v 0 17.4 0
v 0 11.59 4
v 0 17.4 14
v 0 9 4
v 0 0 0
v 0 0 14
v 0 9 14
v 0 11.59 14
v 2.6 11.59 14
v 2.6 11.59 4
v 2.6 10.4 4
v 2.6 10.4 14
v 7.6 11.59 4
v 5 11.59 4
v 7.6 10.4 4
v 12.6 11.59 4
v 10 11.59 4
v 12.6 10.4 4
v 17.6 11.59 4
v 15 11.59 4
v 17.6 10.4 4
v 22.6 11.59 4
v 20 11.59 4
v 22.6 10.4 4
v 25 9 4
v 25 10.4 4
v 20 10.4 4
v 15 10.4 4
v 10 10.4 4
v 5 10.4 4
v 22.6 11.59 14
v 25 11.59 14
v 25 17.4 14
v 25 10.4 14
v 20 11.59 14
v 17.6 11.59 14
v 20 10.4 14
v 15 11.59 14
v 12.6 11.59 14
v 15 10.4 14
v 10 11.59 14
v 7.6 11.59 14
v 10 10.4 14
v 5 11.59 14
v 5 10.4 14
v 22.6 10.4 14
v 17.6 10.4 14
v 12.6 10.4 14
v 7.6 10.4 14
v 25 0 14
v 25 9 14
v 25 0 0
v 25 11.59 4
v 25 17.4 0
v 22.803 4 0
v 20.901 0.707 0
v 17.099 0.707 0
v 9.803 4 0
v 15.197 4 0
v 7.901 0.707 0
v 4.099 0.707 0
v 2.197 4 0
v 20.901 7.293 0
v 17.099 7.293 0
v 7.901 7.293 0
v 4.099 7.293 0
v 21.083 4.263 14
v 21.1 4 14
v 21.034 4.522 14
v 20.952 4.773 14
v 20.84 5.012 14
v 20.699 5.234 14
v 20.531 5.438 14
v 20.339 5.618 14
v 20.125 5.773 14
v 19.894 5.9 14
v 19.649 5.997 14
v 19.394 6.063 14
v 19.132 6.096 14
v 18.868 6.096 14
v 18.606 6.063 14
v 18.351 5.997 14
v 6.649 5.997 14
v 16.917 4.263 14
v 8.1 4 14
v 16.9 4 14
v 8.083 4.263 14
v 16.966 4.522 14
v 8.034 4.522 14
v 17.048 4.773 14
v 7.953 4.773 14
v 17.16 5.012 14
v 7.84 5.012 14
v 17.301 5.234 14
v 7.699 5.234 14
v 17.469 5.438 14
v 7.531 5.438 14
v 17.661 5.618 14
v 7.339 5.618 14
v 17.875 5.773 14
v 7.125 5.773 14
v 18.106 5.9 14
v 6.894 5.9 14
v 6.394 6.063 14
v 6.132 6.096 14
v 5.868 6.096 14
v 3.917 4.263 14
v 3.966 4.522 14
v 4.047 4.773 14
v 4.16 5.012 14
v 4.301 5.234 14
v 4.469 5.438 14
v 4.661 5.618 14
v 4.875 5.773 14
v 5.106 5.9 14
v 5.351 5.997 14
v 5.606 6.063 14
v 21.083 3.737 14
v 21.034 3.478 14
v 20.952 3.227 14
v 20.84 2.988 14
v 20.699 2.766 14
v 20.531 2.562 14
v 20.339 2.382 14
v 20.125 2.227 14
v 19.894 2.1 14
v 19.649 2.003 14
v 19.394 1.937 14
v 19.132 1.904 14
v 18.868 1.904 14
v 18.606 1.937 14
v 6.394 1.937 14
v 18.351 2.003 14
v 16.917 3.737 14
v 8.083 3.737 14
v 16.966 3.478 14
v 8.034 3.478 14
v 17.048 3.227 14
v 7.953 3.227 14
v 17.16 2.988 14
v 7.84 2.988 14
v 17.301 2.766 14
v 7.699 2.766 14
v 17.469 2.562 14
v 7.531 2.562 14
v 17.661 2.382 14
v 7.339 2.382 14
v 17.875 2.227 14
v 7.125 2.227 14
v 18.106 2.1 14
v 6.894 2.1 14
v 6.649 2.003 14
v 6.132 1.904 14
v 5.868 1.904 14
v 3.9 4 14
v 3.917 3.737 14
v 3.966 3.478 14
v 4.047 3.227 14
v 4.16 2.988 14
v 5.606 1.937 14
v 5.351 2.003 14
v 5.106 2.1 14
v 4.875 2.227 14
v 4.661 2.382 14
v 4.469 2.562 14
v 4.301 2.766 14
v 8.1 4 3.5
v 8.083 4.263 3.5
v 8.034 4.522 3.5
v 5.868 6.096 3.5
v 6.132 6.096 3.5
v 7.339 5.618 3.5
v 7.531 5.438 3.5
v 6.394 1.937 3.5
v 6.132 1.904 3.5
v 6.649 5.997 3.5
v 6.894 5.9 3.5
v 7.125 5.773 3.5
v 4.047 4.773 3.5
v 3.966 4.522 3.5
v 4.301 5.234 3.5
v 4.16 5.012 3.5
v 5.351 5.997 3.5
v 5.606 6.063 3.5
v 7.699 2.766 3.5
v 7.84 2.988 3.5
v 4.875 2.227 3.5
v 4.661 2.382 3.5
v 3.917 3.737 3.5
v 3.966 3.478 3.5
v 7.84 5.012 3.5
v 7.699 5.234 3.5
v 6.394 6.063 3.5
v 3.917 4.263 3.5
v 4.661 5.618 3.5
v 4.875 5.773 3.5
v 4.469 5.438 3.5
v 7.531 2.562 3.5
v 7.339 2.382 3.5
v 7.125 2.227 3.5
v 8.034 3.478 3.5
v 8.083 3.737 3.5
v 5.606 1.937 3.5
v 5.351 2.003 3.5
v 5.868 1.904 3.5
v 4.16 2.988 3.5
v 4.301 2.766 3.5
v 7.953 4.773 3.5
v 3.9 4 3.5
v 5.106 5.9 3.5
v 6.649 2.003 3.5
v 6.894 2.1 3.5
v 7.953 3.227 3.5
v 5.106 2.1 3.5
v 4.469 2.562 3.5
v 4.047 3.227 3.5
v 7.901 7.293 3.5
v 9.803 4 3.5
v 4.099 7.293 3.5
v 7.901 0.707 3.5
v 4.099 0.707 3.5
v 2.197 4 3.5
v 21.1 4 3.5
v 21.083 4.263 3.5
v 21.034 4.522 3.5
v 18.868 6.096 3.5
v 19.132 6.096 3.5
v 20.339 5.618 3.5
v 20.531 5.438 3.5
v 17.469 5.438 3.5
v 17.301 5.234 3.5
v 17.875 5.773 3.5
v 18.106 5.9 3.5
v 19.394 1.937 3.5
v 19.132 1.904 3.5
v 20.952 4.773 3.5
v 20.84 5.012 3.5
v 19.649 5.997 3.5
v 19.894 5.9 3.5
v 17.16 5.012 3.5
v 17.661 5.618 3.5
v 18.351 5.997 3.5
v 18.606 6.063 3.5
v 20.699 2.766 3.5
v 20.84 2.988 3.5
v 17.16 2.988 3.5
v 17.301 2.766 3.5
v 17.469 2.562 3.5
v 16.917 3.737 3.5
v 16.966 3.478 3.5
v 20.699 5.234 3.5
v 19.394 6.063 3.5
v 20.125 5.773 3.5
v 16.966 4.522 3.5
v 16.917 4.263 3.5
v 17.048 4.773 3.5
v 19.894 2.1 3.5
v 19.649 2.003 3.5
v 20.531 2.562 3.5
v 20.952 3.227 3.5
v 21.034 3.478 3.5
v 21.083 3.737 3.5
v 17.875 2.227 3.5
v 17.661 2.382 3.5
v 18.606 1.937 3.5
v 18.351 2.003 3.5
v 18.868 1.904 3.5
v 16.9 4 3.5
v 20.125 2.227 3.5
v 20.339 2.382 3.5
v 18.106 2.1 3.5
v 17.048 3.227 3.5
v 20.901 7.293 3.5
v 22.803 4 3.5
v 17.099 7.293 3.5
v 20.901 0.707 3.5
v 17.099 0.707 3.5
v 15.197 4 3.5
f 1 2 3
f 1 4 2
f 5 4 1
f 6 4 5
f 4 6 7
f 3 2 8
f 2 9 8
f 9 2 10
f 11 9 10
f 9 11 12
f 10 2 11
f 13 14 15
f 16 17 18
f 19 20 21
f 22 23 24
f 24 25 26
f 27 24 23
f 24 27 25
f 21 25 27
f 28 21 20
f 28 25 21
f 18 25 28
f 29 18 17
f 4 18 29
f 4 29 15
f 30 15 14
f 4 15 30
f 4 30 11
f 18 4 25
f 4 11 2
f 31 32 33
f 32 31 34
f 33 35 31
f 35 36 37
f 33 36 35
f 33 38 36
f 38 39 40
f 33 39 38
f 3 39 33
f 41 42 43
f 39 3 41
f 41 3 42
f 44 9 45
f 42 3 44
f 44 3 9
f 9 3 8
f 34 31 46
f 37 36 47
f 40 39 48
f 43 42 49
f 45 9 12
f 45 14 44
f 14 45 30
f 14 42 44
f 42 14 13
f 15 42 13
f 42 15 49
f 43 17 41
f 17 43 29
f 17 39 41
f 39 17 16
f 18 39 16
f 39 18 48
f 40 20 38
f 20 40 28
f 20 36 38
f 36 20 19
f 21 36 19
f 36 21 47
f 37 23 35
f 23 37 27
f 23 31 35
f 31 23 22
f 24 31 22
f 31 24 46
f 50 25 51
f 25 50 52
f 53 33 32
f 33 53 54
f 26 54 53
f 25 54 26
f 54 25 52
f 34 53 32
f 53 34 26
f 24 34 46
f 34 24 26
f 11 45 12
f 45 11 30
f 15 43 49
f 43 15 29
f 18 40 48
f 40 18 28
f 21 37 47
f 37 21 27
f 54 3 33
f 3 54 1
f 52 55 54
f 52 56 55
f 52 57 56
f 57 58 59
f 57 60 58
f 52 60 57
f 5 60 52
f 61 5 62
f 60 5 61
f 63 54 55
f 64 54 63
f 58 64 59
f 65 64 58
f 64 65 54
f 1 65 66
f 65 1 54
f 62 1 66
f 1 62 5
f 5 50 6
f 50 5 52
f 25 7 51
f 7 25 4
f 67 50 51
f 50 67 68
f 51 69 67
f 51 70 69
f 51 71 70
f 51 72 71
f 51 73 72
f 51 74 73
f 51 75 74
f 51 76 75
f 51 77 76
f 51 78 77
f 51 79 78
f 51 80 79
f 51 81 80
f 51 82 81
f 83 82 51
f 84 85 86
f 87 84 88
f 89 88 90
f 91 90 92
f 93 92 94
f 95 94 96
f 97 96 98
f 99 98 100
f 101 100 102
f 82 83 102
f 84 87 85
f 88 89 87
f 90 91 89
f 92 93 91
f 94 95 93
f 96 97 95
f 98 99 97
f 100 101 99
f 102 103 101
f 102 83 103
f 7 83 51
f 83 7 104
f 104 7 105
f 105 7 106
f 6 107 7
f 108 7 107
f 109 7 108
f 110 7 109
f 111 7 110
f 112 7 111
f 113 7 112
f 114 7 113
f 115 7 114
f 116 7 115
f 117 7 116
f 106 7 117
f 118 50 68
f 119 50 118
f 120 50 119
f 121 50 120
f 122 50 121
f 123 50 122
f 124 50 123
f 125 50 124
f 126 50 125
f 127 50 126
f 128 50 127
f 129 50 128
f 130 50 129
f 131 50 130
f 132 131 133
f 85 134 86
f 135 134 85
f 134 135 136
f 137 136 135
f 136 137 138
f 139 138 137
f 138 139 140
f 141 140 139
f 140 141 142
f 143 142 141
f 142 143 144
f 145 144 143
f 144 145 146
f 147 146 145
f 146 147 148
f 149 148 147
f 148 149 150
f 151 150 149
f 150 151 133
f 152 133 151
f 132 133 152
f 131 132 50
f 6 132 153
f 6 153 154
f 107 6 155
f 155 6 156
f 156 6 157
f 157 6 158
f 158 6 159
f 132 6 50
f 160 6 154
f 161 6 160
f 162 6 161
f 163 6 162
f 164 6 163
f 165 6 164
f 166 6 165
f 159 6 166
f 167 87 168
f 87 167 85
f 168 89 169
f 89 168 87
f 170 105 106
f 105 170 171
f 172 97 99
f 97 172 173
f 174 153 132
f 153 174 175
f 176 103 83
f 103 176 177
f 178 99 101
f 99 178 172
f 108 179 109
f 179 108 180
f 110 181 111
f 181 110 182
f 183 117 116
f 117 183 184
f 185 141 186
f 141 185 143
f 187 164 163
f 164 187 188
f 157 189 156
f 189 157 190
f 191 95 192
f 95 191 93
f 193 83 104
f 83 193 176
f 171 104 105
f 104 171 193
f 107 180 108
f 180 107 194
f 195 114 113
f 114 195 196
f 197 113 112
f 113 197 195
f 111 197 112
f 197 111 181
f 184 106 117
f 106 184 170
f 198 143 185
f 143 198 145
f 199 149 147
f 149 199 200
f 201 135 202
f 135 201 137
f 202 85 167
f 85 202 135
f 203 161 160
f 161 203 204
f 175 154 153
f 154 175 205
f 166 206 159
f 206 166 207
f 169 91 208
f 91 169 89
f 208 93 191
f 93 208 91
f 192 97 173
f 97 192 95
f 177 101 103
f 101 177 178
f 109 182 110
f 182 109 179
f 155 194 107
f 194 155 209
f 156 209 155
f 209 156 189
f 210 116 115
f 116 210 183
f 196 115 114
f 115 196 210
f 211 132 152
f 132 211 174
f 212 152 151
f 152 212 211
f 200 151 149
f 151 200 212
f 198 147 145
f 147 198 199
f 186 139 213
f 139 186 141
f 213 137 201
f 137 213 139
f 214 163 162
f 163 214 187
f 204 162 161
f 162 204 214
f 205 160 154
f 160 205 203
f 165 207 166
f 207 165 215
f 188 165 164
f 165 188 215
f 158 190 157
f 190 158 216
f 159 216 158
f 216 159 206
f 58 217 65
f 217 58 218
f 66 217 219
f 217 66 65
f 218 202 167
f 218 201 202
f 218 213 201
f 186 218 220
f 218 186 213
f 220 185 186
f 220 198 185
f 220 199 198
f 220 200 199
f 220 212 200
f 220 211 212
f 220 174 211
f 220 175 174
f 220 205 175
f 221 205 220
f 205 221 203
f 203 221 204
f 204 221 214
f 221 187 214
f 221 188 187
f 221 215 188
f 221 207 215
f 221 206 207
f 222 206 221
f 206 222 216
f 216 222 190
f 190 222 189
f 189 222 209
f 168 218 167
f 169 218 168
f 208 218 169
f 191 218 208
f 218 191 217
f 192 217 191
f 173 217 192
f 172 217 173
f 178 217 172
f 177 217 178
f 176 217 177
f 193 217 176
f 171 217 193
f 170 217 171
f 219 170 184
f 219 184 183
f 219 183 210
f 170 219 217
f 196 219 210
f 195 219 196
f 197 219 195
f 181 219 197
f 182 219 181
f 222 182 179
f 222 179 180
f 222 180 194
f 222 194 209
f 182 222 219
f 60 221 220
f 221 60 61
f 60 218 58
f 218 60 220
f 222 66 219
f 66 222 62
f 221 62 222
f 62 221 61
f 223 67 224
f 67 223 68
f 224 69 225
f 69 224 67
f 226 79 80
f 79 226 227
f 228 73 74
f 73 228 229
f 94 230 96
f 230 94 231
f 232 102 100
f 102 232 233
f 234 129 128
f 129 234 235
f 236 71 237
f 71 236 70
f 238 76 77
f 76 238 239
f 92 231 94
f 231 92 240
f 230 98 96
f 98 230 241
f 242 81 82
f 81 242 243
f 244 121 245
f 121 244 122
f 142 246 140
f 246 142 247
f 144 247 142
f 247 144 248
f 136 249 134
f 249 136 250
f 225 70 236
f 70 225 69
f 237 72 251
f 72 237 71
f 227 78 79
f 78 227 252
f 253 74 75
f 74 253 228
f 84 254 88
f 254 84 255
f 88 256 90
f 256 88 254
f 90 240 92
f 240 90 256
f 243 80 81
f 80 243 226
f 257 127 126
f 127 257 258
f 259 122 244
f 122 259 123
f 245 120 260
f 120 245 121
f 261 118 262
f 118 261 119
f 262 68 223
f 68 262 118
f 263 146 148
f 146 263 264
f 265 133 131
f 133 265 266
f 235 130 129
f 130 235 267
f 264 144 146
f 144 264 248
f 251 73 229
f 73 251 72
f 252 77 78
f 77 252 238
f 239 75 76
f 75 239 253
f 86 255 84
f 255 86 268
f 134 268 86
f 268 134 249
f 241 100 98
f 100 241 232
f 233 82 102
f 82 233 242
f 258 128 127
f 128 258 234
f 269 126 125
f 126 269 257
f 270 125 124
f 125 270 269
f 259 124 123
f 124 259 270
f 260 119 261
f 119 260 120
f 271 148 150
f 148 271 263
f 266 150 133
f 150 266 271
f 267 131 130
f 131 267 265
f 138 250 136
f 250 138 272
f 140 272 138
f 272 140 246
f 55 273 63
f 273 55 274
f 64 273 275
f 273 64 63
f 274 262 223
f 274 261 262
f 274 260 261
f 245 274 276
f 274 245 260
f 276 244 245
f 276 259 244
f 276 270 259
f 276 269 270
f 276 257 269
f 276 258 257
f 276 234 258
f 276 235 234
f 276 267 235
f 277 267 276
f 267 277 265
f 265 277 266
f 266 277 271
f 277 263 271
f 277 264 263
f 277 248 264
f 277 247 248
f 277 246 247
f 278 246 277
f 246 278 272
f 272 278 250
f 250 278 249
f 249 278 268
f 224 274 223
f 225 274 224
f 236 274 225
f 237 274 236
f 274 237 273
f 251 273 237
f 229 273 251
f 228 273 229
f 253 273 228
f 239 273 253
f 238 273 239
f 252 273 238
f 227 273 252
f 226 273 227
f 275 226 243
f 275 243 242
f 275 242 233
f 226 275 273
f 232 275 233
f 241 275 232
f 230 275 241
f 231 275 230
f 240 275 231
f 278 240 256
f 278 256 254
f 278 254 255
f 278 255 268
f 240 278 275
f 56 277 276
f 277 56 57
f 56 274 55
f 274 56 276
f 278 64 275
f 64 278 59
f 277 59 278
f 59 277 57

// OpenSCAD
// Y-belt retainer/tensioner
// May 2012 John Newman

// This parameter deterimes how far the belt is held above the deck
dRise = 0;			// Added to the depth to make the belt run horizontal

// Belt dimensions - These are for T2.5, see below for T5
//tBase = 1.25;		// Thickness of belt base
//tFull = 2.0;			// Thickness of Belt at teeth
//wTooth = 1.4;		// Width of tooth (not actual, req)
//wSpace = 1.1;		// Width of space
//wBelt = 6.2;		// Width of belt

// Belt dimensions - These are for T5
tBase = 1.5;		// Thickness of belt base
tFull = 2.7;			// Thickness of Belt at teeth
wTooth = 2.6;		// Width of tooth (not actual, req)
wSpace = 2.4;		// Width of space
wBelt = 10;		// Width of belt


// Misc params
wHex = 6.9;		// Width of trap for hex nut
dHex	= 2.5;			// Depth of trap for hex nut
rM3 = 1.7;			// Radius of M3 bolt hole
sDrop = wHex/2-0.5; //2.8;		// Driver screw drop from base of slider
Adjust = 0.5;		// Spacing for things to fit inside other things!
pWidth = 9;			// Screw platform width
pHeight = 5;		// Screw platform height

// Base parameters
bwExt = 20;		// Widest part of base
bwInt = 15;			// inside width, where slider goes
blExt = 30;			// Overall length of base
blHed = 6;			// Head of base whch takes the strain !
bdExt = 12.5;		// This included a minimum floor thickness of 2mm (?)
bRoof = 2.8;		// The thickness of the roof which holds the slider in
bFloor = 1;			// The thickness of the floor under the slider (minimum)
bdSoc = bdExt-(bRoof+bFloor);		// 'Socket' depth for slider to go in

// Slider parameters
swMax = bwInt - Adjust;	// Wide part of slider
sdMax = bdSoc-Adjust;		// Height of slider

lBelt = blExt*2;		// Length of a bit of belt!
rMsk = blExt/3 ;		// Radius of part of mount masking...

module sliderpart() {
	difference() {
		cube([blExt-blHed,swMax,sdMax],center=true);
		// Make a hole for the bolt end
	//	translate([(blExt-blHed)/2-2,0,(sdMax/2)-sDrop]) rotate([30,0,0]) rotate([0,90,0]) cylinder(10,rM3+0.5,rM3+0.5,$fn=6);
		// Make a fracture to cause fill
		translate([(blExt-blHed)/2-4.2,0,(sdMax-tFull)/2+1]) cube([0.05,swMax-4.4,sdMax],center=true) ;
		// Finally indent for belt
		translate([-lBelt/2,-wBelt/2,-sdMax/2-0.1]) belt();
	}
}

// Note this is positioned so that the slider is centered on the XY plane
module basepart() {
	union() {
		difference() {
			translate([0,0,-dRise/2]) cube([blExt,bwExt,bdExt+dRise],center=true);
			// Remove the space for the slider
			translate([-blHed,0,(bFloor-bRoof)/2]) cube([blExt,bwInt,bdSoc],center=true);
			// Remove a hole for the bolt
			translate([(blExt/2-9),0,bFloor+sDrop-bdExt/2]) rotate([30,0,0]) rotate([0,90,0]) cylinder(15,rM3,rM3);
			// An indentation for the bolt head
			translate([(blExt/2)-(blHed+5-dHex),0,bFloor+sDrop-bdExt/2]) rotate([30,0,0]) rotate([0,90,0]) cylinder(5,wHex/2,wHex/2,$fn=6);
			// A slot for the belt to come through
			translate([blExt/2-blHed,0,(bdExt-tFull-0.61)/2-bRoof]) cube([15,wBelt+2,tFull+0.6],center=true);
		}
		translate([0,bwExt/2 + (pWidth/2-0.01),-bdExt/2+pHeight/2]) screwmount() ;
		translate([0,-(bwExt/2 + (pWidth/2-0.01)),-bdExt/2+pHeight/2]) screwmount() ;
	}
}

module belt() {
	cube([lBelt,wBelt,tBase]) ;
	for (inc = [0:(wTooth+wSpace):lBelt-wTooth]) translate([inc,0,tBase-0.01]) cube([wTooth,wBelt,(tFull-tBase)]) ;
}

module screwmount() {
	difference() {
		cube([blExt,pWidth,pHeight],center=true);
		// Bolt holes
		translate([(blExt-pWidth)/2,0,-(pHeight/2+1)]) rotate([0,0,30]) cylinder(pHeight+2,rM3,rM3,$fn=6);
		translate([-(blExt-pWidth)/2,0,-(pHeight/2+1)]) rotate([0,0,30]) cylinder(pHeight+2,rM3,rM3,$fn=6);
		// Nut traps
		translate([(blExt-pWidth)/2,0,pHeight/2-dHex-0.01]) rotate([0,0,30]) cylinder(5,wHex/2,wHex/2,$fn=6);
		translate([-(blExt-pWidth)/2,0,pHeight/2-dHex-0.01]) rotate([0,0,30]) cylinder(5,wHex/2,wHex/2,$fn=6);
	}
}



// ---- this is the only thing I've done, just using the belt shape for 
// ---- my purposes here, misan.


/*
translate([0,0,14]) rotate([-90,0,0])  {
//	union() {
	translate([0,10,0]) cube([25,4,15.4]);
	translate([0,0,12.4]) cube([25,14,3]);
}
*/



translate([0,0,14]) rotate([-90,0,0]) difference() {
	union() {
        translate([0,10,0]) cube([25,4,17.4]);
        translate([0,0,10.4])
        //move teeth to back wall
        difference(){
            cube([25,14,7]);
            translate([0,0,-1.5]) belt();
        }    
        cube([25,14,9]);    //mounting holes in this cube
	}

	translate([6,25,4]) rotate([90,0,0]) cylinder(d=4.2, h=30,$fn=50);
	translate([6,14.5,4]) rotate([90,0,0]) rotate([0,0,0]) cylinder(r=6.5 / cos(180 / 6) / 2 + 0.05, h=4,$fn=6);
     
	translate([19,25,4]) rotate([90,0,0]) cylinder(d=4.2, h=30,$fn=50);
	translate([19,14.5,4]) rotate([90,0,0]) rotate([0,0,0]) cylinder(r=6.5 / cos(180 / 6) / 2 + 0.05, h=4,$fn=6);
 
}






/*
translate([40,0,14]) rotate([-90,0,0]) difference() {
	union() {
	translate([0,10,0]) cube([25,4,15.4]);
	translate([0,0,11.4]) cube([25,14,4]);
		difference() {
			cube([25,14,11]);
			translate([0,10,12]) 			rotate([180,0,0])  belt();
		}
	}

	translate([6,25,4]) rotate([90,0,0]) cylinder(d=4.2, h=30,$fn=16);
	translate([6,2,4]) rotate([90,0,0]) rotate([0,0,0]) cylinder(r=7 / cos(180 / 6) / 2 + 0.05, h=4,$fn=6);
     
	translate([19,25,4]) rotate([90,0,0]) cylinder(d=4.2, h=30,$fn=16);
	translate([19,2,4]) rotate([90,0,0]) rotate([0,0,0]) cylinder(r=7 / cos(180 / 6) / 2 + 0.05, h=4,$fn=6);

 
    
//	translate([-1,7,4]) rotate([0,90,0]) cylinder(r=4.2/2, h=27,$fn=16);
//	translate([-1,7,4]) rotate([0,90,0]) rotate([0,0,0]) cylinder(r=7 / cos(180 / 6) / 2 + 0.05, h=4,$fn=6);
}
*/
